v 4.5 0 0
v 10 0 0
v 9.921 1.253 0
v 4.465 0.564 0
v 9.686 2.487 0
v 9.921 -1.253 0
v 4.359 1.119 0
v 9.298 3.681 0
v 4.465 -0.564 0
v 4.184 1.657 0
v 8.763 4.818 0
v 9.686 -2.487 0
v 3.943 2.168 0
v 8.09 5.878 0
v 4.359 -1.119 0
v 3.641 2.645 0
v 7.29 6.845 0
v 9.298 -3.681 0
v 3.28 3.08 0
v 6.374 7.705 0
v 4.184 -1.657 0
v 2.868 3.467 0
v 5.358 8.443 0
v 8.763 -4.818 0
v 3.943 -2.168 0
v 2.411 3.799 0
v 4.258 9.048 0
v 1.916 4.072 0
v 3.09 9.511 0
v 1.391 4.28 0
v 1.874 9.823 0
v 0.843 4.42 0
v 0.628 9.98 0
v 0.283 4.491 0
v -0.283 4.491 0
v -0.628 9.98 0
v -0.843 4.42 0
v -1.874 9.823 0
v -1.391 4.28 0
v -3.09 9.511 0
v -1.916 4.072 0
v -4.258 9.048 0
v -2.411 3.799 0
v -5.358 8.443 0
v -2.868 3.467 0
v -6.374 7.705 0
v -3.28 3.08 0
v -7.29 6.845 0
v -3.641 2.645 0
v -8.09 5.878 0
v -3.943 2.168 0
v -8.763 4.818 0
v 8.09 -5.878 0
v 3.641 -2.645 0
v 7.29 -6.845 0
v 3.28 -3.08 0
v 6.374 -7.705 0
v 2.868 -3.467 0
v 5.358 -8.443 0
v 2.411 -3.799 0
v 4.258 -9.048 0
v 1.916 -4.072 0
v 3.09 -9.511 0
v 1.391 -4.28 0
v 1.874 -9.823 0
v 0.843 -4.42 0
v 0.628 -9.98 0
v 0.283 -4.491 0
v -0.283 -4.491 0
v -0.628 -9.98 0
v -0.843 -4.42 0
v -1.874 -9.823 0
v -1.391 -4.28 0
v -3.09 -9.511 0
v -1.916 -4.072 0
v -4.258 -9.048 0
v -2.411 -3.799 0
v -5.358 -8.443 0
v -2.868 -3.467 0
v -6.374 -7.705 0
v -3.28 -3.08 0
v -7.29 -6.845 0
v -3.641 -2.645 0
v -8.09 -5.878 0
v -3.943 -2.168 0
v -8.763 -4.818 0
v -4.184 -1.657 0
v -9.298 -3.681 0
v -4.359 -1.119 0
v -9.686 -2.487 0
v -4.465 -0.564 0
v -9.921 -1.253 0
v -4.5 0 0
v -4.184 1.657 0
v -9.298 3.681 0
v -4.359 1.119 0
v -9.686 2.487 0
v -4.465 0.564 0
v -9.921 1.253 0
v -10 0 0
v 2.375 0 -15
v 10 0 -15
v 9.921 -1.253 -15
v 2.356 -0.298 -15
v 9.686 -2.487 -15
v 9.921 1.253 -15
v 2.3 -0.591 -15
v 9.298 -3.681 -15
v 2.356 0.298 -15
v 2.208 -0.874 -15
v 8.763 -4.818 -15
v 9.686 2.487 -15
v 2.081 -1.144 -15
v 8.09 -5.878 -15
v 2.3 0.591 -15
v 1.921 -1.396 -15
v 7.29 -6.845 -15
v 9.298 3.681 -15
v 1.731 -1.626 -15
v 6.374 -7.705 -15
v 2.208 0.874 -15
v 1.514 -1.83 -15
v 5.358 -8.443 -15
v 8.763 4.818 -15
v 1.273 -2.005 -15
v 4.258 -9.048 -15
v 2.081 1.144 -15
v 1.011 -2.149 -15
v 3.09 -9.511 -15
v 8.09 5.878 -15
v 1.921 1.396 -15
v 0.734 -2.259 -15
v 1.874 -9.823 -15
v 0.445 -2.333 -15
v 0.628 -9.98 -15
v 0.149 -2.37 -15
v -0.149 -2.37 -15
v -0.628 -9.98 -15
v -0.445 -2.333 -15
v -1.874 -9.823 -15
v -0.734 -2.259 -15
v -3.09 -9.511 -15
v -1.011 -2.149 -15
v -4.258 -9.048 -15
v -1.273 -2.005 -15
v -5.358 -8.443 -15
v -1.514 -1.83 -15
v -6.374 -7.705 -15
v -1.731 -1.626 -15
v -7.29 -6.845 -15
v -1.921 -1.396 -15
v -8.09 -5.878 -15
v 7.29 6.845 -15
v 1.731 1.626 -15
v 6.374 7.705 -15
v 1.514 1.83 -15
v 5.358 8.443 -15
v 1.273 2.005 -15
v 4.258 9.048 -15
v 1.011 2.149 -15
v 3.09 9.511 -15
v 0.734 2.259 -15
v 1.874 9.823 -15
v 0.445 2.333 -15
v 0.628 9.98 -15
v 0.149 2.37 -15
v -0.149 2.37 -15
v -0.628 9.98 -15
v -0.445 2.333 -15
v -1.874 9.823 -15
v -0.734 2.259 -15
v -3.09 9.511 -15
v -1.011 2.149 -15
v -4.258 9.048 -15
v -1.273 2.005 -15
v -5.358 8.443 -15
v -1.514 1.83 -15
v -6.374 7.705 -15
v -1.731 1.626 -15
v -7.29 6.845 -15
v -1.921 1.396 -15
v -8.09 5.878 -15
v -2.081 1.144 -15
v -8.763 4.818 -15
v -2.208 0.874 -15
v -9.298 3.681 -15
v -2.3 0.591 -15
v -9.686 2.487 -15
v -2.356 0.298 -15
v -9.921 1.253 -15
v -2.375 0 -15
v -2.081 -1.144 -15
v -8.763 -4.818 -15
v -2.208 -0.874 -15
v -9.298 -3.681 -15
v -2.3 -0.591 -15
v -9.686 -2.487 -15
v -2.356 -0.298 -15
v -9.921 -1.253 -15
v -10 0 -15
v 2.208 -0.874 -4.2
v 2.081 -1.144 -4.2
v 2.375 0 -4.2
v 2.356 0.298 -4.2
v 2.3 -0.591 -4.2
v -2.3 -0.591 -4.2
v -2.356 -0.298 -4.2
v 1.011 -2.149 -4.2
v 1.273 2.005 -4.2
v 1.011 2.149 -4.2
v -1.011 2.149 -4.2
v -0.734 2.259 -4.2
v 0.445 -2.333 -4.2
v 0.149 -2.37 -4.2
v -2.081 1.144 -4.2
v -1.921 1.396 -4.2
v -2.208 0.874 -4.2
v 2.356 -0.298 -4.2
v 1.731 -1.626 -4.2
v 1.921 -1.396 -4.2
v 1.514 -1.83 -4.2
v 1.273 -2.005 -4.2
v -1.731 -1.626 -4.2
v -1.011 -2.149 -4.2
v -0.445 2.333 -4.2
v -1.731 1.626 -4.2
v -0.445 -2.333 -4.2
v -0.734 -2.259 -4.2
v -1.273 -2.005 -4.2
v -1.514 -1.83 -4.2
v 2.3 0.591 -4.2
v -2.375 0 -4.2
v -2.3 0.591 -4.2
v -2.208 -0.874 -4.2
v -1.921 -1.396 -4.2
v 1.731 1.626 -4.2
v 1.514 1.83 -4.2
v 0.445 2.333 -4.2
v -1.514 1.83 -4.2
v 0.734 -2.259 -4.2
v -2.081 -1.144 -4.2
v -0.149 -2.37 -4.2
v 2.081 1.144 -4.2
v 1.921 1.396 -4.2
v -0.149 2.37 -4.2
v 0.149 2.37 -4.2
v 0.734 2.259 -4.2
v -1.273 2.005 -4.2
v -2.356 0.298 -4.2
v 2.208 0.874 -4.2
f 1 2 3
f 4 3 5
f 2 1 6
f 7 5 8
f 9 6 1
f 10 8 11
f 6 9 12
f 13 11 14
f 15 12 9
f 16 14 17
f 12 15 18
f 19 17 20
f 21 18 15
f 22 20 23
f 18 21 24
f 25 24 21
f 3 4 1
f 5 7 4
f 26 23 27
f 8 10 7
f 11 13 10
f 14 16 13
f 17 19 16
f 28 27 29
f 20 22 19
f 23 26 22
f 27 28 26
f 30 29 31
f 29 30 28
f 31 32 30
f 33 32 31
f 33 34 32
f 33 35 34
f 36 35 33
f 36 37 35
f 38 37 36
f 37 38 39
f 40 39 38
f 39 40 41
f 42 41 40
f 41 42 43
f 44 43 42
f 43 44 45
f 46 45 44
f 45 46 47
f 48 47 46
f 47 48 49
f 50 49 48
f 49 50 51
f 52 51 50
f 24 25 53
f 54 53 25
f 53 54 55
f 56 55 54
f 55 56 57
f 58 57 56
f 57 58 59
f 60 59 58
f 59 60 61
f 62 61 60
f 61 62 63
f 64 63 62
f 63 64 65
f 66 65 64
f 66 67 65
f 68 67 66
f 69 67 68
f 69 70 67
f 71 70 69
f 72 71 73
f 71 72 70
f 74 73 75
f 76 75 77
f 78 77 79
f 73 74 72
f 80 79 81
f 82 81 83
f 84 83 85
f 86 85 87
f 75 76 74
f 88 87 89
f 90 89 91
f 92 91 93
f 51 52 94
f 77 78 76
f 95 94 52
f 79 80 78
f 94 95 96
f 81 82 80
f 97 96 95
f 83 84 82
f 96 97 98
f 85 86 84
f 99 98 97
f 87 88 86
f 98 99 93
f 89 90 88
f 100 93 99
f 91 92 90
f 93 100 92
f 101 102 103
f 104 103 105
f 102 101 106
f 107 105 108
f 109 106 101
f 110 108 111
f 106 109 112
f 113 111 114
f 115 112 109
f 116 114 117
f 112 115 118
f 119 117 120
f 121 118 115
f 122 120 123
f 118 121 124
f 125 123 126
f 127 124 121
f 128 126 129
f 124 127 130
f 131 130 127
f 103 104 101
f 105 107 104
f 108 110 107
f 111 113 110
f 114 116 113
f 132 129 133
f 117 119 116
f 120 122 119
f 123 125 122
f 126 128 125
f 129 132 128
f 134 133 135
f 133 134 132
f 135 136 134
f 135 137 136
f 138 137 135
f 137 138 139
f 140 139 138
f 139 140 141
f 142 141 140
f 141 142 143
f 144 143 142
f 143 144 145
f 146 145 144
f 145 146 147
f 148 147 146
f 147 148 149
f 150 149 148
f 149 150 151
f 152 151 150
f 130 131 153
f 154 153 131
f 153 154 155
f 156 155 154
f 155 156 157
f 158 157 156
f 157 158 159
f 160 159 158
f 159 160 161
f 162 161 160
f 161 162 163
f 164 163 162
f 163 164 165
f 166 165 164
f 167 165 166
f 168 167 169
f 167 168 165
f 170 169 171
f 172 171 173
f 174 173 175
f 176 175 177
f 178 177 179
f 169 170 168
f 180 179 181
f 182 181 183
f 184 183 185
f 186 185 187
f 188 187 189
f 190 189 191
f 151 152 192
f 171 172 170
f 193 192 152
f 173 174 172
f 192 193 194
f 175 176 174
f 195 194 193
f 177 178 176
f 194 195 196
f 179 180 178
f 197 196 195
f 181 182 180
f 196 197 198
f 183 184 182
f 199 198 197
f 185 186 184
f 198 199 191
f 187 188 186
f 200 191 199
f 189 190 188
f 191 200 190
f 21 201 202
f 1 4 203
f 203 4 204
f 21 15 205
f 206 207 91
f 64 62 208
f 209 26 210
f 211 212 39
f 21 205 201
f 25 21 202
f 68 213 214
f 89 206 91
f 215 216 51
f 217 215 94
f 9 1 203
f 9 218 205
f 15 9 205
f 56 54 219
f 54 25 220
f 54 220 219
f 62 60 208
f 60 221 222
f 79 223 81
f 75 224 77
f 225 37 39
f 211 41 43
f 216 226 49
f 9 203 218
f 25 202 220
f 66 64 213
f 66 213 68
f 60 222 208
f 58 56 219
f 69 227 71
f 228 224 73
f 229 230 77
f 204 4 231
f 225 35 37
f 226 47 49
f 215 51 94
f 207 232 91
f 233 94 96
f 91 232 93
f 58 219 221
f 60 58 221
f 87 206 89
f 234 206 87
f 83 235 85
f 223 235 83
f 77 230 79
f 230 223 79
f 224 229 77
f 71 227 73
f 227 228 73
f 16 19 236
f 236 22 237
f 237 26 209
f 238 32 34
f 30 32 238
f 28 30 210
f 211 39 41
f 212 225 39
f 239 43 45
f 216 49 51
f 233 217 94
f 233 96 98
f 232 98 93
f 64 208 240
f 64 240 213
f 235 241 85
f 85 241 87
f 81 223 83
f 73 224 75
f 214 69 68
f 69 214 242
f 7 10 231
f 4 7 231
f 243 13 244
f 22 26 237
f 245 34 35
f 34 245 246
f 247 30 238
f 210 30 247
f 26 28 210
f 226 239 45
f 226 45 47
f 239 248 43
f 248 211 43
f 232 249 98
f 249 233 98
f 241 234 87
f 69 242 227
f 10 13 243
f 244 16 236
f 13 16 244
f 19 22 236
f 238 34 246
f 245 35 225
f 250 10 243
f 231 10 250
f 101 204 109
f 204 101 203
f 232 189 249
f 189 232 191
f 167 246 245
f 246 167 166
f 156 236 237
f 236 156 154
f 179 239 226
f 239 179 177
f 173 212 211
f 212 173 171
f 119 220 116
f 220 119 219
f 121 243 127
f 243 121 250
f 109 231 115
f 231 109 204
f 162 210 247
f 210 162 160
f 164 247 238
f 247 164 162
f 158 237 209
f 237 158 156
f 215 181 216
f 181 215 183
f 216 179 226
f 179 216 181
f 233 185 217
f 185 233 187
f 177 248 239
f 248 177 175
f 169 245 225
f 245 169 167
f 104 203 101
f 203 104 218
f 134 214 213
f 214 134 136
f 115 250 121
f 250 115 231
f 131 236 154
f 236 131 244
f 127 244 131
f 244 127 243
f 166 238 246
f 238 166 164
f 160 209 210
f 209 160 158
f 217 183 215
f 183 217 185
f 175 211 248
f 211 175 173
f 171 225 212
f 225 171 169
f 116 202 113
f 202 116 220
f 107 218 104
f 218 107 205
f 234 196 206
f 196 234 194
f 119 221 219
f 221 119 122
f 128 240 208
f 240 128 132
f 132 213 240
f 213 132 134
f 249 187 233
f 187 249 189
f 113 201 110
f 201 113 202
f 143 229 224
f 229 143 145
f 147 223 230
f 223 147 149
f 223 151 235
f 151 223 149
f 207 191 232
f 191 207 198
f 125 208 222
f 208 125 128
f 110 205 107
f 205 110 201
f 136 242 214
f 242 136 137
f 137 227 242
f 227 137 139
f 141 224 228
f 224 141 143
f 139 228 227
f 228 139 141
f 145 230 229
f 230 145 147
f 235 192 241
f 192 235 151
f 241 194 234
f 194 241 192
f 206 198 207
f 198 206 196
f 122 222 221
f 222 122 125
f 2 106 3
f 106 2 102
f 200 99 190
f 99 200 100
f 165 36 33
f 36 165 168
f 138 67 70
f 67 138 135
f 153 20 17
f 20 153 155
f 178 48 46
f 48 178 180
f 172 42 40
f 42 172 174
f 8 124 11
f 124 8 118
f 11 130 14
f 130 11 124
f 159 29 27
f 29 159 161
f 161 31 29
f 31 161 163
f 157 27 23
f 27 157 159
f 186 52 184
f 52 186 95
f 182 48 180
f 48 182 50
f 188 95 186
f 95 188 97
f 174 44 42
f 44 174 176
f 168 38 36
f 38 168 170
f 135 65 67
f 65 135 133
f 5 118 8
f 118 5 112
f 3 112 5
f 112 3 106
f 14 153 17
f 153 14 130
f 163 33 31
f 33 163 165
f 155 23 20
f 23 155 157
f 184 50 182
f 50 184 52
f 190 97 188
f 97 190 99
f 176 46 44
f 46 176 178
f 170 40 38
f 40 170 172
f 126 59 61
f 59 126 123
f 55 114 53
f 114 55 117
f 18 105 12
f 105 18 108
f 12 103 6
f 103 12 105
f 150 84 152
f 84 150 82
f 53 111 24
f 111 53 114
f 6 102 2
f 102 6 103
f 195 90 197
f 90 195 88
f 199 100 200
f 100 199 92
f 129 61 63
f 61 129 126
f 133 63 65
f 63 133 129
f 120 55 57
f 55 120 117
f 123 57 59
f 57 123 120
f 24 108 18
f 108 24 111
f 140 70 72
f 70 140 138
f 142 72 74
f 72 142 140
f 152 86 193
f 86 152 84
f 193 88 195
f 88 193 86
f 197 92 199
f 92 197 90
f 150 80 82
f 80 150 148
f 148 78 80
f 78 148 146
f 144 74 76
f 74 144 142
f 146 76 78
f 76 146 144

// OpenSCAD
$fn = 50;


difference() {
	union() {
		translate(v = [0, 0, -15.0000000000]) {
			cylinder(h = 15, r = 10.0000000000);
		}
	}
	union() {
		translate(v = [0, 0, 0]) {
			rotate(a = [0, 0, 0]) {
				difference() {
					union() {
						#translate(v = [0, 0, -15.0000000000]) {
							cylinder(h = 15, r = 2.2500000000);
						}
						#translate(v = [0, 0, -4.2000000000]) {
							cylinder(h = 4.2000000000, r = 10.0000000000, r1 = 2.3750000000, r2 = 4.5000000000);
						}
						#translate(v = [0, 0, -15.0000000000]) {
							cylinder(h = 15, r = 2.3750000000);
						}
						#translate(v = [0, 0, -15.0000000000]) {
							cylinder(h = 15, r = 2.2500000000);
						}
					}
					union();
				}
			}
		}
	}
}
